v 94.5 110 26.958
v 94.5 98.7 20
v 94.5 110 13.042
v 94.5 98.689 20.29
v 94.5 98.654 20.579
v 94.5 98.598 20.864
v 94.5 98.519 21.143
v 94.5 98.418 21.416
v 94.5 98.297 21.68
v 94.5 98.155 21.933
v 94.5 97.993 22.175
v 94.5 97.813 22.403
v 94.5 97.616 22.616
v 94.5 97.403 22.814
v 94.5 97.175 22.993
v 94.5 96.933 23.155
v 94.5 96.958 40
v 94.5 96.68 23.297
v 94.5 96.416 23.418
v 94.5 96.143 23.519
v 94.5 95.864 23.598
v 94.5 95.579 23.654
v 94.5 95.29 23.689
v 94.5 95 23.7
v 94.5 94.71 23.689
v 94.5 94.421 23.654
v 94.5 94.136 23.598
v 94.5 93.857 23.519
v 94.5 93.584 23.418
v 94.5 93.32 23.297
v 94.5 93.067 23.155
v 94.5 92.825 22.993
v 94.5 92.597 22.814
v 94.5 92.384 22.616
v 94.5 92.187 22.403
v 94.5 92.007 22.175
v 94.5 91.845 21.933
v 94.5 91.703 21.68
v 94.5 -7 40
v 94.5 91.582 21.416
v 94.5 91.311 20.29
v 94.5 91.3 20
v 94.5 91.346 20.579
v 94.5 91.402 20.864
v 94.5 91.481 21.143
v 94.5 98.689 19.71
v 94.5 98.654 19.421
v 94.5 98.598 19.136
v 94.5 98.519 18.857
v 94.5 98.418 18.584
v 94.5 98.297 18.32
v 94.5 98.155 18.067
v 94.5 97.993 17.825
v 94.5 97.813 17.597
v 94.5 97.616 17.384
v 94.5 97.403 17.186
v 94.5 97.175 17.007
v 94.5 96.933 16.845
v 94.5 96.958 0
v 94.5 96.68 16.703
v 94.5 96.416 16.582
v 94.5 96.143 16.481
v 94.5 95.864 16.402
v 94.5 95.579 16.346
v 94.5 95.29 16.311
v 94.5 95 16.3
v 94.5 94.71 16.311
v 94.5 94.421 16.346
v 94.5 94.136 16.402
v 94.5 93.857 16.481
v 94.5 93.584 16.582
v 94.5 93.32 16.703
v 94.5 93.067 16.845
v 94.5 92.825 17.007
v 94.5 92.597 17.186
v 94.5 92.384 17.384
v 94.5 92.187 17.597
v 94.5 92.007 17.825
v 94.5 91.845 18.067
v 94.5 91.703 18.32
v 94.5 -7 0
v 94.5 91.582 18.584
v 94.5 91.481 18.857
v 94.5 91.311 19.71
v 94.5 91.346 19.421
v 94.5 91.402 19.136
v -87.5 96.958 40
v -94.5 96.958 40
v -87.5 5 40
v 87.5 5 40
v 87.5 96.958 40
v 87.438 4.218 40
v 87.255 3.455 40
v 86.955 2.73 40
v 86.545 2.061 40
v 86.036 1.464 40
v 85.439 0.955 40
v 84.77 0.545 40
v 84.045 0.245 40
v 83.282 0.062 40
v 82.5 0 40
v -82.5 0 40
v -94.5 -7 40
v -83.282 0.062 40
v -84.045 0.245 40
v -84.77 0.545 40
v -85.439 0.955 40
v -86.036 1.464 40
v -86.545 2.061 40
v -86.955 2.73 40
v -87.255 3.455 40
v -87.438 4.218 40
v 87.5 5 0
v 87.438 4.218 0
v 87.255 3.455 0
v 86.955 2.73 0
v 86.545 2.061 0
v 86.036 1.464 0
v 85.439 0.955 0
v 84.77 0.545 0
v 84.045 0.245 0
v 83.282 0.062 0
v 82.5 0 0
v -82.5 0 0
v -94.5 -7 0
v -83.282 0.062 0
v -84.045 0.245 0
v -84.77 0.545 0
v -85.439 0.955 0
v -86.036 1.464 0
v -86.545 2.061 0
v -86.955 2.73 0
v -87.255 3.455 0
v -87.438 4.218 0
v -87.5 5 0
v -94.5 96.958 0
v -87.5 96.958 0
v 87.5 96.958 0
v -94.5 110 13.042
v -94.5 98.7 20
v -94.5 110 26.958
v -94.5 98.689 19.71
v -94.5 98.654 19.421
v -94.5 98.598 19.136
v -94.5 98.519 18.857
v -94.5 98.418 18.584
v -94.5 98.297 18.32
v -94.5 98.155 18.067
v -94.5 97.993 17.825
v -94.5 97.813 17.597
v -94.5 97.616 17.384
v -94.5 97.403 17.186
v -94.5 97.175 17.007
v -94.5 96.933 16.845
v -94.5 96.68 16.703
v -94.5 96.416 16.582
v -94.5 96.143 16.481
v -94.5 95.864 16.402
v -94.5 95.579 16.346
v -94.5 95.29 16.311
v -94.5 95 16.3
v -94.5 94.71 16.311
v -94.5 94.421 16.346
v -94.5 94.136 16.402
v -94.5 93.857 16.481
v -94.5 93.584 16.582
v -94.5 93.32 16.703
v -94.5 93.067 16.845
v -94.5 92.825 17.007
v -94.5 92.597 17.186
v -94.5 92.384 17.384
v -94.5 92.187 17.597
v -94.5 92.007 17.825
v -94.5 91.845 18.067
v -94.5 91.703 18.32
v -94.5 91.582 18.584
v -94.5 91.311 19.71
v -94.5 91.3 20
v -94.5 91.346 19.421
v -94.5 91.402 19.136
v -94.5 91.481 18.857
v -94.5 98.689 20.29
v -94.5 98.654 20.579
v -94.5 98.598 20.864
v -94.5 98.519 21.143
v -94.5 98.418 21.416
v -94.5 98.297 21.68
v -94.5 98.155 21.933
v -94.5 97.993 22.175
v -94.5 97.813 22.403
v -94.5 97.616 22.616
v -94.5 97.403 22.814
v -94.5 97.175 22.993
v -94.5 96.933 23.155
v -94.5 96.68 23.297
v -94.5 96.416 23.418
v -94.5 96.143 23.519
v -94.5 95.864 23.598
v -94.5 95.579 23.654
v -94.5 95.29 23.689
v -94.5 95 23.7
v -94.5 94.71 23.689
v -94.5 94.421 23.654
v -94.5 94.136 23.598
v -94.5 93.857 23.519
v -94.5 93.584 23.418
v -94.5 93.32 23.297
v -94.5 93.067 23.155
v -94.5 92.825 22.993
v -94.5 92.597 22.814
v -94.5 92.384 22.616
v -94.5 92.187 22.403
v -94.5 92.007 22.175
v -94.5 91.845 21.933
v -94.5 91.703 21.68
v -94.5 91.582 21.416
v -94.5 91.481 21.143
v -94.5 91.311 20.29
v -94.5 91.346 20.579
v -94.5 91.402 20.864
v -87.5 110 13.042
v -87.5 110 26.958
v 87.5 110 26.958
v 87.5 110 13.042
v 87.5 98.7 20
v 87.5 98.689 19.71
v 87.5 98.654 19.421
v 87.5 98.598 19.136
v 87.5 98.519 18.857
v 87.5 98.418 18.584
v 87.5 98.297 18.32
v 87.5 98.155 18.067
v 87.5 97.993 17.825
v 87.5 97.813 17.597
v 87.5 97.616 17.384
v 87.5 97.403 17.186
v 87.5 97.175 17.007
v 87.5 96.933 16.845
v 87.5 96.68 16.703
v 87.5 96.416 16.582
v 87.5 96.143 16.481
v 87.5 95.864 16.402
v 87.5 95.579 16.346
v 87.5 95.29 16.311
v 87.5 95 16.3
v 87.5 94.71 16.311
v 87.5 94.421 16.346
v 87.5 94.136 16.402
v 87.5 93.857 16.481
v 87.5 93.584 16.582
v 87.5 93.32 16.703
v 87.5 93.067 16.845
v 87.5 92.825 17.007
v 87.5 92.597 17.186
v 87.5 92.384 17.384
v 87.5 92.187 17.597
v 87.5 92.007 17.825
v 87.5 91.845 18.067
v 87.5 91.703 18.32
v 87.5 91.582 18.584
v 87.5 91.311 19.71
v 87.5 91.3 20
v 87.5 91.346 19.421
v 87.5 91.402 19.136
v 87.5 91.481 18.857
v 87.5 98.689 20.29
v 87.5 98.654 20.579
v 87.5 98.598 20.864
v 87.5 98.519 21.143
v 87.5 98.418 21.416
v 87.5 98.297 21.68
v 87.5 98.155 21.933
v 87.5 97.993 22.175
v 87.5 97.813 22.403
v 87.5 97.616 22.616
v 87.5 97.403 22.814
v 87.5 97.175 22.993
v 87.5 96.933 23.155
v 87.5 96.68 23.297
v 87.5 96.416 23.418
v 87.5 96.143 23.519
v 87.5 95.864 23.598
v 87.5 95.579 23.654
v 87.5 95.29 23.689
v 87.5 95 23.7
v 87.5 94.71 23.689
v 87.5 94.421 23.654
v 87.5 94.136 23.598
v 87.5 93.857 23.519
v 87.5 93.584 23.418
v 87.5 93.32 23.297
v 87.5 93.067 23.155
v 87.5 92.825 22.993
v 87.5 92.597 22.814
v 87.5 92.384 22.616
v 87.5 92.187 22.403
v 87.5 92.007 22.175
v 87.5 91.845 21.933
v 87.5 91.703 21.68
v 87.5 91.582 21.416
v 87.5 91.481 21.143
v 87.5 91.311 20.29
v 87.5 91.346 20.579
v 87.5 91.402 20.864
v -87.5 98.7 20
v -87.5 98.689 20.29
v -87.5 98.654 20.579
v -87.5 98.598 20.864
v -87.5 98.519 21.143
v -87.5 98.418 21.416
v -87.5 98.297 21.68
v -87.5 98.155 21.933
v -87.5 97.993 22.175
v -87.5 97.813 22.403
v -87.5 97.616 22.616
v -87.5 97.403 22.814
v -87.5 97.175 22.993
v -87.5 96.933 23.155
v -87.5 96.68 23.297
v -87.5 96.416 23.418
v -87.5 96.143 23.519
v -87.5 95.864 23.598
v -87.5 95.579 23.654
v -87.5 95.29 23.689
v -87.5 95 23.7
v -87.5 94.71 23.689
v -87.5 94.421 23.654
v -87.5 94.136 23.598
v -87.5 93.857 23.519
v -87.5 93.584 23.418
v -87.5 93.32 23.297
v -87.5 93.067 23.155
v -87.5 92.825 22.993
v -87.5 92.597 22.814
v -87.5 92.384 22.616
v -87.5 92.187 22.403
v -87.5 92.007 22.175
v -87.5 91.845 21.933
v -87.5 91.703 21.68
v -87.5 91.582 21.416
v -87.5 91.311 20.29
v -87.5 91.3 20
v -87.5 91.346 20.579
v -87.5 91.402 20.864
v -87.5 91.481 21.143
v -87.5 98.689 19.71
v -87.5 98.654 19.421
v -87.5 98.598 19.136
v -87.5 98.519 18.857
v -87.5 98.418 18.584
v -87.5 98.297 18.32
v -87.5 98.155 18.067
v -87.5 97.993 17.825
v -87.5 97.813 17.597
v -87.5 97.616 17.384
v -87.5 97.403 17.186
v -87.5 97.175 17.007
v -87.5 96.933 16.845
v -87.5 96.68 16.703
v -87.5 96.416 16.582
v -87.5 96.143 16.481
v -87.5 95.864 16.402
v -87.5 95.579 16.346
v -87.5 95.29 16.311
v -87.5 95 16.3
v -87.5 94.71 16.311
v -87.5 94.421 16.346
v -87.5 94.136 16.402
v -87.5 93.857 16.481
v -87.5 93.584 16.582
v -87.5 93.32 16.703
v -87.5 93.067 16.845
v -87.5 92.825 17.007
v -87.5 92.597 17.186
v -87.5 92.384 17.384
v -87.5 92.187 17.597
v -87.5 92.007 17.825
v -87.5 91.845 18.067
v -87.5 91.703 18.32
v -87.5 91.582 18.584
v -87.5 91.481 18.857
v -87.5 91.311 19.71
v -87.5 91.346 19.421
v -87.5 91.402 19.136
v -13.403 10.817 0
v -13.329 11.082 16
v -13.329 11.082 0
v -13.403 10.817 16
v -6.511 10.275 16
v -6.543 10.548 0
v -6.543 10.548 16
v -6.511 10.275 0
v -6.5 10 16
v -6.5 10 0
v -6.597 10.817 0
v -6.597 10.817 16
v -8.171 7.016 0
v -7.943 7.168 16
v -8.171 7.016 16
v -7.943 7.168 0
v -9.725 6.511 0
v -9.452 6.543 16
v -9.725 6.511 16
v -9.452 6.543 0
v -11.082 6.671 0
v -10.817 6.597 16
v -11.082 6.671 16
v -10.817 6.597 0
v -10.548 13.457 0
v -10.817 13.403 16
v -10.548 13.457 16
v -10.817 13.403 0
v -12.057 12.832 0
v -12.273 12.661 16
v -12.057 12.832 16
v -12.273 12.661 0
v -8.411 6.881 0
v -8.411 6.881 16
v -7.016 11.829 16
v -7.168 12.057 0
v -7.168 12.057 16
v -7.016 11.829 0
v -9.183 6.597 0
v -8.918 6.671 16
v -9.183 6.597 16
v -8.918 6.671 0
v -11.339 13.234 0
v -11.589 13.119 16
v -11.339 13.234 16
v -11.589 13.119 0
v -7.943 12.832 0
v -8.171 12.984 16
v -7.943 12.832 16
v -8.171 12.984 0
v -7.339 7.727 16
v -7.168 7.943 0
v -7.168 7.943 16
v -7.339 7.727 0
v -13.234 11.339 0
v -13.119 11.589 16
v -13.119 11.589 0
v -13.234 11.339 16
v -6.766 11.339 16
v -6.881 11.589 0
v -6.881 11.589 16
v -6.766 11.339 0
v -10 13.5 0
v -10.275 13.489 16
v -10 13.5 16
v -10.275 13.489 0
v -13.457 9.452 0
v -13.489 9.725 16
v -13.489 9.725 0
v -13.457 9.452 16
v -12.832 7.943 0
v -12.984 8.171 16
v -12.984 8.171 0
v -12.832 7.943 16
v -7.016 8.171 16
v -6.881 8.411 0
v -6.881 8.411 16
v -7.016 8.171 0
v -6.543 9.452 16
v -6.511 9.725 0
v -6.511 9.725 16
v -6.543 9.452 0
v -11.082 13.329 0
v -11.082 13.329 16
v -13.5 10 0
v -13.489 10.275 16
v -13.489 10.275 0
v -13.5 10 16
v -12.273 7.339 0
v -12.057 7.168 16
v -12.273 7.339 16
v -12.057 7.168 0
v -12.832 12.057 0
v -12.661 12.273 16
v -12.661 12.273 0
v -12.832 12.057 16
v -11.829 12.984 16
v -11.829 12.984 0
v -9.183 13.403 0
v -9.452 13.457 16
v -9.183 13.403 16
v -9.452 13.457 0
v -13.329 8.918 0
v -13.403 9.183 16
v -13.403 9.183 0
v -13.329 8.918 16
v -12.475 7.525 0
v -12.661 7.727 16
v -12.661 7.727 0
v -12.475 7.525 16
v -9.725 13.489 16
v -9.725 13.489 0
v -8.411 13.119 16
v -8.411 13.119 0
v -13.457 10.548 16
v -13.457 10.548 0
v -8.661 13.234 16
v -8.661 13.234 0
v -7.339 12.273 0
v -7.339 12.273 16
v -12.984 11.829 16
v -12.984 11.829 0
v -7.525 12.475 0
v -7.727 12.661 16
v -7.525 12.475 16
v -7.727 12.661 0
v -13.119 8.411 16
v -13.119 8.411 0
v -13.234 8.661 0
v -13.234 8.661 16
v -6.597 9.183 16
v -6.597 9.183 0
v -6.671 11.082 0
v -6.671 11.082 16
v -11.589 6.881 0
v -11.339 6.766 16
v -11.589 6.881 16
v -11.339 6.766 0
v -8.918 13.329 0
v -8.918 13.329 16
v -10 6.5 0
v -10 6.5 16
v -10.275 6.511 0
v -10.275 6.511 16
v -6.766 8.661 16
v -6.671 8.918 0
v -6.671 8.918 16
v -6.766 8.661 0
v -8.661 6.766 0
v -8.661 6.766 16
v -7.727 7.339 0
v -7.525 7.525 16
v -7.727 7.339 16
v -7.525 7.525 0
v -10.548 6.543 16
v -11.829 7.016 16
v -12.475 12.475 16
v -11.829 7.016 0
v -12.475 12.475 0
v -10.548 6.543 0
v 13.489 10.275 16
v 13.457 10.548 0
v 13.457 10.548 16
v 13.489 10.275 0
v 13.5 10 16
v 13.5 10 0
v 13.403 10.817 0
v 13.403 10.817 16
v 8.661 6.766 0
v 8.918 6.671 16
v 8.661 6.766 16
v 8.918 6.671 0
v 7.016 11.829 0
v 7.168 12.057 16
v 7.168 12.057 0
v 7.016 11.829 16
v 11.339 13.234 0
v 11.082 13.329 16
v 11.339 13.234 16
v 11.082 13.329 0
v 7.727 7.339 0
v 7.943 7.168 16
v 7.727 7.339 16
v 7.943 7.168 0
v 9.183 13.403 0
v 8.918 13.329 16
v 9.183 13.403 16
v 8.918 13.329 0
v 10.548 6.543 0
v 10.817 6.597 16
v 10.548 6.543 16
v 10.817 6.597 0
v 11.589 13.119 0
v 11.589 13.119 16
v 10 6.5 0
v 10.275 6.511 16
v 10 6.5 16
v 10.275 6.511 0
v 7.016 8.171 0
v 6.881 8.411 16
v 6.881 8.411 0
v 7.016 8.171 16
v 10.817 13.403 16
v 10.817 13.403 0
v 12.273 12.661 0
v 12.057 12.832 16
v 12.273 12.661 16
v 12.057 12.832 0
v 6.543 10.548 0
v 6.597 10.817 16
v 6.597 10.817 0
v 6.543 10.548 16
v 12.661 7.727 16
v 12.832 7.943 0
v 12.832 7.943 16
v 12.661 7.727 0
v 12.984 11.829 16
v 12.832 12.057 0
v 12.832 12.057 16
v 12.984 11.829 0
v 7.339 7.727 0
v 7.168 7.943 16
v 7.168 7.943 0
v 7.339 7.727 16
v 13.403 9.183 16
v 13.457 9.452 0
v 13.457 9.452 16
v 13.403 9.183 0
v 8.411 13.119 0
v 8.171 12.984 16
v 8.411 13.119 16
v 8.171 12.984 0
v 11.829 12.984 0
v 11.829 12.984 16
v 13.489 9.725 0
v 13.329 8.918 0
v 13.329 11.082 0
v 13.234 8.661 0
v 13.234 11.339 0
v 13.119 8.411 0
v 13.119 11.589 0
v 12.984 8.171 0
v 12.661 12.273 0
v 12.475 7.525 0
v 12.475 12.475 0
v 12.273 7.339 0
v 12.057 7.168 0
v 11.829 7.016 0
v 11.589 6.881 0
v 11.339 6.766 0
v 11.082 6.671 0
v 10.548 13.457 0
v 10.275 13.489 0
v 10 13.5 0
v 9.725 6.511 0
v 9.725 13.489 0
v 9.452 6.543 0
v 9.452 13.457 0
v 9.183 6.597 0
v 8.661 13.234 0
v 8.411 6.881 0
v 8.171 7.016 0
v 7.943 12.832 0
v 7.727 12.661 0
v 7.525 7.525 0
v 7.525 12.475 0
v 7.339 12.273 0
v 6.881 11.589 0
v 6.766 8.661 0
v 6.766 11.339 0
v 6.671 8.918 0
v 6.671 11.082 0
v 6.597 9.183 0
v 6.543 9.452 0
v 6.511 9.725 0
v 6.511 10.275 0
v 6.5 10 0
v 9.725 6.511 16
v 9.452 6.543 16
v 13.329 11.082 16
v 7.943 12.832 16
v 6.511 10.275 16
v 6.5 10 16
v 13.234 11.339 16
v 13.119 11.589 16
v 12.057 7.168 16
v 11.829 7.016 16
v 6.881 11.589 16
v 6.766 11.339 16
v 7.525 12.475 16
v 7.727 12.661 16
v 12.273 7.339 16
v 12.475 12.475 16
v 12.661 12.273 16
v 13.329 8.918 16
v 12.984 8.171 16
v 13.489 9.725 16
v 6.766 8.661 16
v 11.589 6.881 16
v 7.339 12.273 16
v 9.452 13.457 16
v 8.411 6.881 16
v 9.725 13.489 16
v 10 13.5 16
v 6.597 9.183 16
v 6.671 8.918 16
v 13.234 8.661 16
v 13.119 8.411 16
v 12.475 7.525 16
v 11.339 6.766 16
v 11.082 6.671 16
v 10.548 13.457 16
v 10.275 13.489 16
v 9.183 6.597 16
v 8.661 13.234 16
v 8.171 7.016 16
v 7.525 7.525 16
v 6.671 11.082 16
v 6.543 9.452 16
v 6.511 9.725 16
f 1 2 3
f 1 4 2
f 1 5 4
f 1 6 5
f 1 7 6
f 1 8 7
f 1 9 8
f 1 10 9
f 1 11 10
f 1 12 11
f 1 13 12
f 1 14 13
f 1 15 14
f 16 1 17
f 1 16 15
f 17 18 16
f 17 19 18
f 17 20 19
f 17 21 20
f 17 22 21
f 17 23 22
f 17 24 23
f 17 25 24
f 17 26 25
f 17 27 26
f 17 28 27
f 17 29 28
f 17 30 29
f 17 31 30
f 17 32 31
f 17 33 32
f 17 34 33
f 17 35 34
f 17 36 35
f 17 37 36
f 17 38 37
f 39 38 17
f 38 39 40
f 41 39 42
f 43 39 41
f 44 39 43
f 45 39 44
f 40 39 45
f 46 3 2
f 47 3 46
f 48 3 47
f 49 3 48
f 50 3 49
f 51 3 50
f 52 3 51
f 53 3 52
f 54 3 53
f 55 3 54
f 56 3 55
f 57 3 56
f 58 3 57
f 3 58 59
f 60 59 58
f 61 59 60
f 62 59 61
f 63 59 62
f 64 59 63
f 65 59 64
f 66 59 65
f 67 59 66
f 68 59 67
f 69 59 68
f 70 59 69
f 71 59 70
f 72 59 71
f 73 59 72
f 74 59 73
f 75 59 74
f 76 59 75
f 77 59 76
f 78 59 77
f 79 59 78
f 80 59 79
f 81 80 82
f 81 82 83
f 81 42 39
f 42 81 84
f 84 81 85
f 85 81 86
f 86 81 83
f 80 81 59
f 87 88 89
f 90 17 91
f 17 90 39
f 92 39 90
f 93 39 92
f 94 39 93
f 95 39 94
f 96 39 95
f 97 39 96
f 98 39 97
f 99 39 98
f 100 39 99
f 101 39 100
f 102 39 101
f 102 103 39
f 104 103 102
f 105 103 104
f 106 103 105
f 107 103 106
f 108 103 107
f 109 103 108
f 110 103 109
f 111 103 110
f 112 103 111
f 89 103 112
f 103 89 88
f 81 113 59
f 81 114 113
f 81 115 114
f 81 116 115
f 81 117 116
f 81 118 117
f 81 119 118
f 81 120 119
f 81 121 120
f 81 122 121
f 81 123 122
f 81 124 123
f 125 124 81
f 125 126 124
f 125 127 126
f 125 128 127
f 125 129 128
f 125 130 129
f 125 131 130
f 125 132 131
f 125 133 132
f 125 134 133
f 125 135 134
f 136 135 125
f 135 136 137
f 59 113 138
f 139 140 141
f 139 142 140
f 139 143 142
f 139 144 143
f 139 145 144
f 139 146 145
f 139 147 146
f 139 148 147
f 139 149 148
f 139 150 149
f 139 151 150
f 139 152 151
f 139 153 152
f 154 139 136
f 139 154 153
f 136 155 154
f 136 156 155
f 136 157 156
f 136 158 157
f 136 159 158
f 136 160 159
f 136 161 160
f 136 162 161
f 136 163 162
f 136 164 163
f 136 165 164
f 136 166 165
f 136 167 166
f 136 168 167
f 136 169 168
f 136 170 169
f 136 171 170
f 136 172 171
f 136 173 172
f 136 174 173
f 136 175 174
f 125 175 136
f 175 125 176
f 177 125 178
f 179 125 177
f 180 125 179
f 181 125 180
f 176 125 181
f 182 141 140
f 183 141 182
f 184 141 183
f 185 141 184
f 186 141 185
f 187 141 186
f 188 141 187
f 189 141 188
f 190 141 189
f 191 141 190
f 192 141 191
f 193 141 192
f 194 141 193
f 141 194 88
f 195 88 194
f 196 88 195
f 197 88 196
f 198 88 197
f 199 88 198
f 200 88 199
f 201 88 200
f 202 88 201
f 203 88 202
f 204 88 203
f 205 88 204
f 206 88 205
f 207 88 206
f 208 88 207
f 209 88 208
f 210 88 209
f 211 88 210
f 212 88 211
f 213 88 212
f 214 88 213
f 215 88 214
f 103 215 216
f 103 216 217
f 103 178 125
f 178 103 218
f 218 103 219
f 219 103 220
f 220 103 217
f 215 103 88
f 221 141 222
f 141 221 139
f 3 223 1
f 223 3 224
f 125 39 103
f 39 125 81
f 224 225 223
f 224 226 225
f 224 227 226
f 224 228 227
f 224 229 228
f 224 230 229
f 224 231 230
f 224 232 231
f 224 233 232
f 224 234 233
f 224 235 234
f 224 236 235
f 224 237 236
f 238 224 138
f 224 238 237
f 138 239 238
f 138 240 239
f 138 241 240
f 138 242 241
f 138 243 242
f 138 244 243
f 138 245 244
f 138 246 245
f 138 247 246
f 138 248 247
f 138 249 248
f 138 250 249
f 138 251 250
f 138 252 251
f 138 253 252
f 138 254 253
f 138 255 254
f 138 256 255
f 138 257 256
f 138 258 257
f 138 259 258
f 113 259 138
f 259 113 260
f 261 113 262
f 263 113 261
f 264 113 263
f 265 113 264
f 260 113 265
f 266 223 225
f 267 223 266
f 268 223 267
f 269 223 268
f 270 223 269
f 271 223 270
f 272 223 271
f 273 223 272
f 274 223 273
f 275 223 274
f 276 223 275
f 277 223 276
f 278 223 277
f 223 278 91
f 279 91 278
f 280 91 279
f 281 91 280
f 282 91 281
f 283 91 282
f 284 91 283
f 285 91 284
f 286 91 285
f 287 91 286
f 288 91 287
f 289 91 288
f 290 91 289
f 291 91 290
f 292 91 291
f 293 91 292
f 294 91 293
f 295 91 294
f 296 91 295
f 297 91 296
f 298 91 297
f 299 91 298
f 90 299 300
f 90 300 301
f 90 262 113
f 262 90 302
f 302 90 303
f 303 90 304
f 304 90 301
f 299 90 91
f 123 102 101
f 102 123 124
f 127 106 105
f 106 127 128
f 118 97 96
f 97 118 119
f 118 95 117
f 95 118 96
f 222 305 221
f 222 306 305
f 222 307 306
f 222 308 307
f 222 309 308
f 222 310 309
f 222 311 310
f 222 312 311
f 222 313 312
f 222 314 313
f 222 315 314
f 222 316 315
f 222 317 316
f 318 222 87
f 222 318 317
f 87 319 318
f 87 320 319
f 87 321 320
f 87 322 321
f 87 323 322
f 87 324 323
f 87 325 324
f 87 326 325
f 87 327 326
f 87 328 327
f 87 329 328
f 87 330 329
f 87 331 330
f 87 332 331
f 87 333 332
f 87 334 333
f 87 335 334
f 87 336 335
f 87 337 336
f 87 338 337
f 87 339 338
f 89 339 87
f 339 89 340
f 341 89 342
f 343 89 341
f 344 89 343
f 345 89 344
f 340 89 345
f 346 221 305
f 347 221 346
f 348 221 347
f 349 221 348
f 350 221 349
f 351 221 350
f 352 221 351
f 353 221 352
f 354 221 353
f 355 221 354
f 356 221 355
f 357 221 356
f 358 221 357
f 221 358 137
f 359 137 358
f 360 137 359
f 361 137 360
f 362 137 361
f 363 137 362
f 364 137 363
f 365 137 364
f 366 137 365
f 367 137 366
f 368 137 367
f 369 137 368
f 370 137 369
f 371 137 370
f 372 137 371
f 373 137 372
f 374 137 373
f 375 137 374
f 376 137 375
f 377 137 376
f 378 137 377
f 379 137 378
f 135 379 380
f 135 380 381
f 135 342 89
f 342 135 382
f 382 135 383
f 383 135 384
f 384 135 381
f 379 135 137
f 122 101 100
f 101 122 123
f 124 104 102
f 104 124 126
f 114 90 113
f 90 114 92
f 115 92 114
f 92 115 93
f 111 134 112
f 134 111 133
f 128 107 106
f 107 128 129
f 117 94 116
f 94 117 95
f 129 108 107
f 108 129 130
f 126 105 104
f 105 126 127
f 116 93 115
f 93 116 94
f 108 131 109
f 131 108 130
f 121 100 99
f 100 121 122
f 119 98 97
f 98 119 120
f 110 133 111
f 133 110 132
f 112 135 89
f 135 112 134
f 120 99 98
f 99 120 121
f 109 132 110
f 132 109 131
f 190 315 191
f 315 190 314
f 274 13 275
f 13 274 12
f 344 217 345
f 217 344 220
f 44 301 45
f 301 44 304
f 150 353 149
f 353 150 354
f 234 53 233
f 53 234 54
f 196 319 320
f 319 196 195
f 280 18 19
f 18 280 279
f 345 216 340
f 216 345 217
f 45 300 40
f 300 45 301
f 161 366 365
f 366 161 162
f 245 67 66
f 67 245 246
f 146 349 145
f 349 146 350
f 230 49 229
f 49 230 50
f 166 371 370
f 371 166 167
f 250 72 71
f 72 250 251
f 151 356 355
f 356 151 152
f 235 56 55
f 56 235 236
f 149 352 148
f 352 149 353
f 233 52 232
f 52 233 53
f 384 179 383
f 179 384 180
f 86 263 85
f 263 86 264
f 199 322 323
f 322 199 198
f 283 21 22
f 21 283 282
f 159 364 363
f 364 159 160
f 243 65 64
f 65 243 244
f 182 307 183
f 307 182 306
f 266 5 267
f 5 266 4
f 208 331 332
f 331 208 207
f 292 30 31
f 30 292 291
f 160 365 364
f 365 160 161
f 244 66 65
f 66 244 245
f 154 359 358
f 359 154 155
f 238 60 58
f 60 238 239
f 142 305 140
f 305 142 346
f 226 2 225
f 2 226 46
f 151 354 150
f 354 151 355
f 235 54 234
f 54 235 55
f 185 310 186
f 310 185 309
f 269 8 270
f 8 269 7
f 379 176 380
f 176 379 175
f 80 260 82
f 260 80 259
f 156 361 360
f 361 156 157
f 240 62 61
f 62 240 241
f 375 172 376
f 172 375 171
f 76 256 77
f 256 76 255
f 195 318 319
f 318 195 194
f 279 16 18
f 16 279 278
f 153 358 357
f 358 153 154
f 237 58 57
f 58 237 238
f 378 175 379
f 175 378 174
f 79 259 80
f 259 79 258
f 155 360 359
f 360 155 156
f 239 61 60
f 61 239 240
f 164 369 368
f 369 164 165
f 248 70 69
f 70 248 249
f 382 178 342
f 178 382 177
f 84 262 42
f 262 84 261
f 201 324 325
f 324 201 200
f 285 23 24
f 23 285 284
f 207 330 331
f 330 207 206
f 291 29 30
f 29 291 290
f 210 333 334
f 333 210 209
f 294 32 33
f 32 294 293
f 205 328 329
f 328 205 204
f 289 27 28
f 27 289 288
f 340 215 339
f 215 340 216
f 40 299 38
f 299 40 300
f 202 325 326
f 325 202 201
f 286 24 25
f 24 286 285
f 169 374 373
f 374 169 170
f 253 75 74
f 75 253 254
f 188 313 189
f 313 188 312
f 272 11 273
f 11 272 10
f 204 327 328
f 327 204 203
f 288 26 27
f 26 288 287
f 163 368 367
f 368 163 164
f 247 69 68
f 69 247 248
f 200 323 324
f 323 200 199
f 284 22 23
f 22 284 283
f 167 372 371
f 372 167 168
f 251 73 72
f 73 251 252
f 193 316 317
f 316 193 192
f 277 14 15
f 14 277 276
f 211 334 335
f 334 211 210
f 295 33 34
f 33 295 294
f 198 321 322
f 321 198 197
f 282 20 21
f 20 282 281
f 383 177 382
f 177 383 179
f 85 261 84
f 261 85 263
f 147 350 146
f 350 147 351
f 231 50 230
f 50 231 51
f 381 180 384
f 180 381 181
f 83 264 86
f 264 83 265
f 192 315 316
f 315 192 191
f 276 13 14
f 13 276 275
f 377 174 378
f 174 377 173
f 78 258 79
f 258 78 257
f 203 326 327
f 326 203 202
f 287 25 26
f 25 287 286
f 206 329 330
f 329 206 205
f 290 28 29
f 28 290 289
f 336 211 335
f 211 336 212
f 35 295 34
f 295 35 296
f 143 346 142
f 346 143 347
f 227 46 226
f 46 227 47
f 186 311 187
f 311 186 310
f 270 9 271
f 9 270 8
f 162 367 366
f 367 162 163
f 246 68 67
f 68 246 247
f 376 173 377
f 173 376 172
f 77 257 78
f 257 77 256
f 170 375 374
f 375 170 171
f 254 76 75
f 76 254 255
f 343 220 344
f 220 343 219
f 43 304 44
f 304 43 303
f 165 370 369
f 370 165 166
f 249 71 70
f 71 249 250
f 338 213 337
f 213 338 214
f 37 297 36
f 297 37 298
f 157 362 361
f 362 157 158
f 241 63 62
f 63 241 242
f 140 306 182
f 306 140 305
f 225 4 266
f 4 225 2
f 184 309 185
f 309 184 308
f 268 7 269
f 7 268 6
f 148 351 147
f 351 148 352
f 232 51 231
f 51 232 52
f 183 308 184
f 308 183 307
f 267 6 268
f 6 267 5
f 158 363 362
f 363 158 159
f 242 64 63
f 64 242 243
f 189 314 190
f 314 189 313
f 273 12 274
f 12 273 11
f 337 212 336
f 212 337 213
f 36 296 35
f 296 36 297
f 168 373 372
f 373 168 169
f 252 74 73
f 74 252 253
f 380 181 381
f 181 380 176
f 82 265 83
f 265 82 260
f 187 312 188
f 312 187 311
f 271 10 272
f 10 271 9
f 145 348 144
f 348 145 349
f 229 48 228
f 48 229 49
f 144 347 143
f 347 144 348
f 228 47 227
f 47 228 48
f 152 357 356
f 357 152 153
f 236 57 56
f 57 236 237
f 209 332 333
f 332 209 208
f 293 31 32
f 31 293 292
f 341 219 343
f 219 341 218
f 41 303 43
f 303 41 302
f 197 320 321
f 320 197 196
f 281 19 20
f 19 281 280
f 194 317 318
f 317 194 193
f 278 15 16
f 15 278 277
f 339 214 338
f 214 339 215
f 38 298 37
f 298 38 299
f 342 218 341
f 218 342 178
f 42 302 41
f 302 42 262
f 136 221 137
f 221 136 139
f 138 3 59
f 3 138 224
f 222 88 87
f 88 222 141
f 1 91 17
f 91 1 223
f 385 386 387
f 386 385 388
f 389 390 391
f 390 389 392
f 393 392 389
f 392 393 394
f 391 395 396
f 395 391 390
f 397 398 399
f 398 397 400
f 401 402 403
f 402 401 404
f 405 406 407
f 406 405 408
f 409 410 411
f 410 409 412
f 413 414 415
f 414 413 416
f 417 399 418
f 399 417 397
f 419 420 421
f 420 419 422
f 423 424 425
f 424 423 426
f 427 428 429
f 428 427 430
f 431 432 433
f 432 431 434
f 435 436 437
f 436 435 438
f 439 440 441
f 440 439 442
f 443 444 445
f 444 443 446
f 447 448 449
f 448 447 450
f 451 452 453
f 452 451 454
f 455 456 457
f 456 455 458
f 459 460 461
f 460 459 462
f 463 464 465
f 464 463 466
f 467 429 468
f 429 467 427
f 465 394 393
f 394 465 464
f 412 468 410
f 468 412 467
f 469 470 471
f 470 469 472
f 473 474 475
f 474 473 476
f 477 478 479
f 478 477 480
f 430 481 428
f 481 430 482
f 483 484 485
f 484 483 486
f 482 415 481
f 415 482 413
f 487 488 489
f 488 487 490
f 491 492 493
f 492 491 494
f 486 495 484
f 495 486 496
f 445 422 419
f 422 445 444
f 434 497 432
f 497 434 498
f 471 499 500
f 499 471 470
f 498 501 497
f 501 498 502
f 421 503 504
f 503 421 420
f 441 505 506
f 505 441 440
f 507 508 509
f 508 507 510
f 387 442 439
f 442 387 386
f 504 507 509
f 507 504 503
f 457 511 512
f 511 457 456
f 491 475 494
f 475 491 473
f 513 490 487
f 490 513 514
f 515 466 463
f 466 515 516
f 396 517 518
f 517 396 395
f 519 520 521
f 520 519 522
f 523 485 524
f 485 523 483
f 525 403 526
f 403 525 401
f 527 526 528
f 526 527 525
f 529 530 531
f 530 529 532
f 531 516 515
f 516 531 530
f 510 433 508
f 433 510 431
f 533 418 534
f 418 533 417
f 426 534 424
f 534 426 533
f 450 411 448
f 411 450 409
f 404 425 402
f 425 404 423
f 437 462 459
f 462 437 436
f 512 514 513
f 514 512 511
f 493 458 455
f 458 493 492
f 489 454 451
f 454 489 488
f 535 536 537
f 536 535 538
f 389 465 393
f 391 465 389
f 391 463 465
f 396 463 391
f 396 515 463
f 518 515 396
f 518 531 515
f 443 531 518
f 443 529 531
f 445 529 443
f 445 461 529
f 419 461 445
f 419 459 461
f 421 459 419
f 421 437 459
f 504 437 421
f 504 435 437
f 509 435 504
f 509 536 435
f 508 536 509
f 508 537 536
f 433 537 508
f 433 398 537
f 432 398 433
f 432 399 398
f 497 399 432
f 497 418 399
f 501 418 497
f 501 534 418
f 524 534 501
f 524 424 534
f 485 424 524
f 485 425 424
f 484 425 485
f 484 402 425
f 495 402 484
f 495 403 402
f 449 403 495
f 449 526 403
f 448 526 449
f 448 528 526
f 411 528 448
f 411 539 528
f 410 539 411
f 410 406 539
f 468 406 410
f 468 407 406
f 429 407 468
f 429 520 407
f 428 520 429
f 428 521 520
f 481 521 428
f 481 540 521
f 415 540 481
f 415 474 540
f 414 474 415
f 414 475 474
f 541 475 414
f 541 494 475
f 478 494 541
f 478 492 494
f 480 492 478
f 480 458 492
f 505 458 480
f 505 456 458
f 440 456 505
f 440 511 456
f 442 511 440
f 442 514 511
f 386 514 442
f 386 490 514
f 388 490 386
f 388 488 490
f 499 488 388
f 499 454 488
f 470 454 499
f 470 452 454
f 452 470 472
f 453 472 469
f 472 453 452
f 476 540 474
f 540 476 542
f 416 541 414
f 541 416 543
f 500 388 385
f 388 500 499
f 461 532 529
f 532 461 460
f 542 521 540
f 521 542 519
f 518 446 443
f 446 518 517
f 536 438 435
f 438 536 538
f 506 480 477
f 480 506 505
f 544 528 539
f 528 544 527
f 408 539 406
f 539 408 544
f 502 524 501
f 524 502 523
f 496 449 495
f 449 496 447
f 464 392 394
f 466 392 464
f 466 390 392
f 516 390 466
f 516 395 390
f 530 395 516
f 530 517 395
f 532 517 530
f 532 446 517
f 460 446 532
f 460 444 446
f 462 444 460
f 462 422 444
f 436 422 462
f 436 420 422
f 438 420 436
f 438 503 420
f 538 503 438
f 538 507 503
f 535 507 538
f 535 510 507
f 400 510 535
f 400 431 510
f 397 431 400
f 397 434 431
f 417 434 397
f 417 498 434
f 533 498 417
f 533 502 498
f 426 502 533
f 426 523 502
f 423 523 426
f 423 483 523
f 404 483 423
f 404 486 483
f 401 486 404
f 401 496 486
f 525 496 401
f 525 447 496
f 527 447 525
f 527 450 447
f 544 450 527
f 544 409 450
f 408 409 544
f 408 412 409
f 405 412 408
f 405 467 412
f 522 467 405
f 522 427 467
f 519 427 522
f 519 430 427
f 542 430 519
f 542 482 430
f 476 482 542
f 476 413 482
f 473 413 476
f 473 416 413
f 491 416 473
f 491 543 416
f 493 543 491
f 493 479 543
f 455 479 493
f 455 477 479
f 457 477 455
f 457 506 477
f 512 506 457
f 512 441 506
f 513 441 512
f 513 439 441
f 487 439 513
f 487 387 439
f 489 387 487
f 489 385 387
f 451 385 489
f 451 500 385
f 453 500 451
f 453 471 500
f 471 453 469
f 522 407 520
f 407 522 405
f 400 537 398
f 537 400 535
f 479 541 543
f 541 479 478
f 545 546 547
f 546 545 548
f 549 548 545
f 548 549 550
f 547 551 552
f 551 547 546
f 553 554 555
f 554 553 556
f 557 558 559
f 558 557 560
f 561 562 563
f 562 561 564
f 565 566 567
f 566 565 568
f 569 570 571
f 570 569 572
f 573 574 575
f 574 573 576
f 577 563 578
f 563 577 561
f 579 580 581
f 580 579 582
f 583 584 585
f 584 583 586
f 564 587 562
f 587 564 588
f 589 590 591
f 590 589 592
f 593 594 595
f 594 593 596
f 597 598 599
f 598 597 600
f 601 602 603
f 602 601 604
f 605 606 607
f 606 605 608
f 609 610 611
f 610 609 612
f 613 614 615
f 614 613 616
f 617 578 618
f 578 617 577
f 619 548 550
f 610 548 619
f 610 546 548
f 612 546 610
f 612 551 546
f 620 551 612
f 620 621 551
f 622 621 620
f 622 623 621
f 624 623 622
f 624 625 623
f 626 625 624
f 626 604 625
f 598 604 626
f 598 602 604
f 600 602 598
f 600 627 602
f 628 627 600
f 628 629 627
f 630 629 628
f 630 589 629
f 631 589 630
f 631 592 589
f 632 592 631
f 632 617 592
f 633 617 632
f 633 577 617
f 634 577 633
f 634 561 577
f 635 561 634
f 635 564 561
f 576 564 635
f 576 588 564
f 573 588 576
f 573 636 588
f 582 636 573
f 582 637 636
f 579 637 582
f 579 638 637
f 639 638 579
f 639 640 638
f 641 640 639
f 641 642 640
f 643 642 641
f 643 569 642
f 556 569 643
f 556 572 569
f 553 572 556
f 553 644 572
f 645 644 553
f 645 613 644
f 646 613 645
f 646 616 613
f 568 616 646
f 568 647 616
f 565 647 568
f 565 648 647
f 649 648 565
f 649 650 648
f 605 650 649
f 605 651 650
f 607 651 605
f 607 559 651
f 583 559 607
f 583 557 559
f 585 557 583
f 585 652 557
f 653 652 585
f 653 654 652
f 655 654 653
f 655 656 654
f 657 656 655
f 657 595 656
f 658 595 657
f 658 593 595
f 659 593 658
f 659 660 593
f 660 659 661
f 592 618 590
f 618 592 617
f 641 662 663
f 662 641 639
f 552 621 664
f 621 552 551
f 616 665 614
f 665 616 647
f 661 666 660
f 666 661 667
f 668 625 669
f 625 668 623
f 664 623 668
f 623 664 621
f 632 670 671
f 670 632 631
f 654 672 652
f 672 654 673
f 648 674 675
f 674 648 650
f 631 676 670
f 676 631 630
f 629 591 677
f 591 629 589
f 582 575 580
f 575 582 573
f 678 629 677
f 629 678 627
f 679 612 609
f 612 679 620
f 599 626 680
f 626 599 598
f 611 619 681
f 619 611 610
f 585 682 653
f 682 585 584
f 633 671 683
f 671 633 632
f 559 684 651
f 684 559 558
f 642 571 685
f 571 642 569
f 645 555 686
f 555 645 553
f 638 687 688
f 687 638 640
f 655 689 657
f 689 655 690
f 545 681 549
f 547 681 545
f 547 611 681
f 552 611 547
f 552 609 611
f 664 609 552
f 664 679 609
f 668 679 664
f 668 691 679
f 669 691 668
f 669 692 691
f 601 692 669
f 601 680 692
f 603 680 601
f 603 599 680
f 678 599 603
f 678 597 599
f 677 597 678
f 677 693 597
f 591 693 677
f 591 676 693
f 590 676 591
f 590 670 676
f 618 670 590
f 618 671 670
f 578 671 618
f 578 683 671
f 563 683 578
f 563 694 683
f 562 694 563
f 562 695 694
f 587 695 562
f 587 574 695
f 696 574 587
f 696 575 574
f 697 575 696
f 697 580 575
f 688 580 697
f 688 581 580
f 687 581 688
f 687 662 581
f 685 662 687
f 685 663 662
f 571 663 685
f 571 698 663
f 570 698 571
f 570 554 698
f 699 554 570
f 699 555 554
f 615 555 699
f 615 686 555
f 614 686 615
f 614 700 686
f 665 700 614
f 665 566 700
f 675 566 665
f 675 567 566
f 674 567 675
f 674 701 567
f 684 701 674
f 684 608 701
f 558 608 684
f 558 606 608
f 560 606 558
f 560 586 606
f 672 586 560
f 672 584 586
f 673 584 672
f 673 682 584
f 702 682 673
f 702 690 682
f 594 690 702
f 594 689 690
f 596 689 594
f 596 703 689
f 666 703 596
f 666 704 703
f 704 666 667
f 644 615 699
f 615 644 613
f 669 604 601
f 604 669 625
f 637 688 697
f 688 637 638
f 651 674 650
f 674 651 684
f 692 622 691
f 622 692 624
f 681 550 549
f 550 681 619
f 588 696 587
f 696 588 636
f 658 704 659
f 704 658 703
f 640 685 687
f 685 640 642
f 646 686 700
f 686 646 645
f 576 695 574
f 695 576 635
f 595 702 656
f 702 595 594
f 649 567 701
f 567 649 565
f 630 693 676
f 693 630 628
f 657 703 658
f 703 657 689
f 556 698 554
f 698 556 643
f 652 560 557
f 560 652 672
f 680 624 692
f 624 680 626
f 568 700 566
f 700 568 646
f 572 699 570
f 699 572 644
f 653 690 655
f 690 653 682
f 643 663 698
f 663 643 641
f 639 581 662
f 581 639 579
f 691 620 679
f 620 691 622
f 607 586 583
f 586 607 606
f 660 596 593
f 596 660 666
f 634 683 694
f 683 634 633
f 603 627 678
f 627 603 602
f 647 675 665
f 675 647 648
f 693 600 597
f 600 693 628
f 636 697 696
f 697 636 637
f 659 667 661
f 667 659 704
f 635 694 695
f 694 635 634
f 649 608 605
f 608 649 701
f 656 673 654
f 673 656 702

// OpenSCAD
inside_width = 175;
ht_to_center_peg = 95;
peg_dia = 7;
peg_len=9;
base_width = 40;
additional_ht = 15;
leg_thick = 7;
base_thick = 7;

difference() {
   translate([-leg_thick-inside_width/2, -base_thick,0])
      cube([inside_width+2*leg_thick, base_thick+ht_to_center_peg+additional_ht, base_width]);

   if (0) translate([-inside_width/2,0,-0.5])
      cube([inside_width, ht_to_center_peg+additional_ht+1,base_width+1]);
   hull() {
       translate([inside_width/2-5,5,-0.5]) cylinder($fn=40,d=10,h=base_width+1);
       translate([-(inside_width/2-5),5,-0.5]) cylinder($fn=40,d=10,h=base_width+1);
       translate([inside_width/2-5,ht_to_center_peg+additional_ht+1,-0.5]) cylinder($fn=40,d=10,h=base_width+1);
       translate([-(inside_width/2-5),ht_to_center_peg+additional_ht+1,-0.5]) cylinder($fn=40,d=10,h=base_width+1);
   }
   
   translate([0,ht_to_center_peg,base_width/2]) rotate([0,90,0])
      translate([0,0,-(inside_width+2*leg_thick+2)/2])
      cylinder($fn=80,d=peg_dia+0.4,h=inside_width+2*leg_thick+2);
   translate([0,111,-0.1]) rotate([45,0,0])
      translate([-(inside_width+2*leg_thick+2)/2,-10,-10])
      cube([inside_width+2*leg_thick+2,20,20]);
   translate([0,111,base_width+0.1]) rotate([45,0,0])
      translate([-(inside_width+2*leg_thick+2)/2,-10,-10])
      cube([inside_width+2*leg_thick+2,20,20]);
}

translate([-10,10,0]) cylinder($fn=80,d=peg_dia,h=peg_len+leg_thick);
translate([10,10,0]) cylinder($fn=80,d=peg_dia,h=peg_len+leg_thick);
